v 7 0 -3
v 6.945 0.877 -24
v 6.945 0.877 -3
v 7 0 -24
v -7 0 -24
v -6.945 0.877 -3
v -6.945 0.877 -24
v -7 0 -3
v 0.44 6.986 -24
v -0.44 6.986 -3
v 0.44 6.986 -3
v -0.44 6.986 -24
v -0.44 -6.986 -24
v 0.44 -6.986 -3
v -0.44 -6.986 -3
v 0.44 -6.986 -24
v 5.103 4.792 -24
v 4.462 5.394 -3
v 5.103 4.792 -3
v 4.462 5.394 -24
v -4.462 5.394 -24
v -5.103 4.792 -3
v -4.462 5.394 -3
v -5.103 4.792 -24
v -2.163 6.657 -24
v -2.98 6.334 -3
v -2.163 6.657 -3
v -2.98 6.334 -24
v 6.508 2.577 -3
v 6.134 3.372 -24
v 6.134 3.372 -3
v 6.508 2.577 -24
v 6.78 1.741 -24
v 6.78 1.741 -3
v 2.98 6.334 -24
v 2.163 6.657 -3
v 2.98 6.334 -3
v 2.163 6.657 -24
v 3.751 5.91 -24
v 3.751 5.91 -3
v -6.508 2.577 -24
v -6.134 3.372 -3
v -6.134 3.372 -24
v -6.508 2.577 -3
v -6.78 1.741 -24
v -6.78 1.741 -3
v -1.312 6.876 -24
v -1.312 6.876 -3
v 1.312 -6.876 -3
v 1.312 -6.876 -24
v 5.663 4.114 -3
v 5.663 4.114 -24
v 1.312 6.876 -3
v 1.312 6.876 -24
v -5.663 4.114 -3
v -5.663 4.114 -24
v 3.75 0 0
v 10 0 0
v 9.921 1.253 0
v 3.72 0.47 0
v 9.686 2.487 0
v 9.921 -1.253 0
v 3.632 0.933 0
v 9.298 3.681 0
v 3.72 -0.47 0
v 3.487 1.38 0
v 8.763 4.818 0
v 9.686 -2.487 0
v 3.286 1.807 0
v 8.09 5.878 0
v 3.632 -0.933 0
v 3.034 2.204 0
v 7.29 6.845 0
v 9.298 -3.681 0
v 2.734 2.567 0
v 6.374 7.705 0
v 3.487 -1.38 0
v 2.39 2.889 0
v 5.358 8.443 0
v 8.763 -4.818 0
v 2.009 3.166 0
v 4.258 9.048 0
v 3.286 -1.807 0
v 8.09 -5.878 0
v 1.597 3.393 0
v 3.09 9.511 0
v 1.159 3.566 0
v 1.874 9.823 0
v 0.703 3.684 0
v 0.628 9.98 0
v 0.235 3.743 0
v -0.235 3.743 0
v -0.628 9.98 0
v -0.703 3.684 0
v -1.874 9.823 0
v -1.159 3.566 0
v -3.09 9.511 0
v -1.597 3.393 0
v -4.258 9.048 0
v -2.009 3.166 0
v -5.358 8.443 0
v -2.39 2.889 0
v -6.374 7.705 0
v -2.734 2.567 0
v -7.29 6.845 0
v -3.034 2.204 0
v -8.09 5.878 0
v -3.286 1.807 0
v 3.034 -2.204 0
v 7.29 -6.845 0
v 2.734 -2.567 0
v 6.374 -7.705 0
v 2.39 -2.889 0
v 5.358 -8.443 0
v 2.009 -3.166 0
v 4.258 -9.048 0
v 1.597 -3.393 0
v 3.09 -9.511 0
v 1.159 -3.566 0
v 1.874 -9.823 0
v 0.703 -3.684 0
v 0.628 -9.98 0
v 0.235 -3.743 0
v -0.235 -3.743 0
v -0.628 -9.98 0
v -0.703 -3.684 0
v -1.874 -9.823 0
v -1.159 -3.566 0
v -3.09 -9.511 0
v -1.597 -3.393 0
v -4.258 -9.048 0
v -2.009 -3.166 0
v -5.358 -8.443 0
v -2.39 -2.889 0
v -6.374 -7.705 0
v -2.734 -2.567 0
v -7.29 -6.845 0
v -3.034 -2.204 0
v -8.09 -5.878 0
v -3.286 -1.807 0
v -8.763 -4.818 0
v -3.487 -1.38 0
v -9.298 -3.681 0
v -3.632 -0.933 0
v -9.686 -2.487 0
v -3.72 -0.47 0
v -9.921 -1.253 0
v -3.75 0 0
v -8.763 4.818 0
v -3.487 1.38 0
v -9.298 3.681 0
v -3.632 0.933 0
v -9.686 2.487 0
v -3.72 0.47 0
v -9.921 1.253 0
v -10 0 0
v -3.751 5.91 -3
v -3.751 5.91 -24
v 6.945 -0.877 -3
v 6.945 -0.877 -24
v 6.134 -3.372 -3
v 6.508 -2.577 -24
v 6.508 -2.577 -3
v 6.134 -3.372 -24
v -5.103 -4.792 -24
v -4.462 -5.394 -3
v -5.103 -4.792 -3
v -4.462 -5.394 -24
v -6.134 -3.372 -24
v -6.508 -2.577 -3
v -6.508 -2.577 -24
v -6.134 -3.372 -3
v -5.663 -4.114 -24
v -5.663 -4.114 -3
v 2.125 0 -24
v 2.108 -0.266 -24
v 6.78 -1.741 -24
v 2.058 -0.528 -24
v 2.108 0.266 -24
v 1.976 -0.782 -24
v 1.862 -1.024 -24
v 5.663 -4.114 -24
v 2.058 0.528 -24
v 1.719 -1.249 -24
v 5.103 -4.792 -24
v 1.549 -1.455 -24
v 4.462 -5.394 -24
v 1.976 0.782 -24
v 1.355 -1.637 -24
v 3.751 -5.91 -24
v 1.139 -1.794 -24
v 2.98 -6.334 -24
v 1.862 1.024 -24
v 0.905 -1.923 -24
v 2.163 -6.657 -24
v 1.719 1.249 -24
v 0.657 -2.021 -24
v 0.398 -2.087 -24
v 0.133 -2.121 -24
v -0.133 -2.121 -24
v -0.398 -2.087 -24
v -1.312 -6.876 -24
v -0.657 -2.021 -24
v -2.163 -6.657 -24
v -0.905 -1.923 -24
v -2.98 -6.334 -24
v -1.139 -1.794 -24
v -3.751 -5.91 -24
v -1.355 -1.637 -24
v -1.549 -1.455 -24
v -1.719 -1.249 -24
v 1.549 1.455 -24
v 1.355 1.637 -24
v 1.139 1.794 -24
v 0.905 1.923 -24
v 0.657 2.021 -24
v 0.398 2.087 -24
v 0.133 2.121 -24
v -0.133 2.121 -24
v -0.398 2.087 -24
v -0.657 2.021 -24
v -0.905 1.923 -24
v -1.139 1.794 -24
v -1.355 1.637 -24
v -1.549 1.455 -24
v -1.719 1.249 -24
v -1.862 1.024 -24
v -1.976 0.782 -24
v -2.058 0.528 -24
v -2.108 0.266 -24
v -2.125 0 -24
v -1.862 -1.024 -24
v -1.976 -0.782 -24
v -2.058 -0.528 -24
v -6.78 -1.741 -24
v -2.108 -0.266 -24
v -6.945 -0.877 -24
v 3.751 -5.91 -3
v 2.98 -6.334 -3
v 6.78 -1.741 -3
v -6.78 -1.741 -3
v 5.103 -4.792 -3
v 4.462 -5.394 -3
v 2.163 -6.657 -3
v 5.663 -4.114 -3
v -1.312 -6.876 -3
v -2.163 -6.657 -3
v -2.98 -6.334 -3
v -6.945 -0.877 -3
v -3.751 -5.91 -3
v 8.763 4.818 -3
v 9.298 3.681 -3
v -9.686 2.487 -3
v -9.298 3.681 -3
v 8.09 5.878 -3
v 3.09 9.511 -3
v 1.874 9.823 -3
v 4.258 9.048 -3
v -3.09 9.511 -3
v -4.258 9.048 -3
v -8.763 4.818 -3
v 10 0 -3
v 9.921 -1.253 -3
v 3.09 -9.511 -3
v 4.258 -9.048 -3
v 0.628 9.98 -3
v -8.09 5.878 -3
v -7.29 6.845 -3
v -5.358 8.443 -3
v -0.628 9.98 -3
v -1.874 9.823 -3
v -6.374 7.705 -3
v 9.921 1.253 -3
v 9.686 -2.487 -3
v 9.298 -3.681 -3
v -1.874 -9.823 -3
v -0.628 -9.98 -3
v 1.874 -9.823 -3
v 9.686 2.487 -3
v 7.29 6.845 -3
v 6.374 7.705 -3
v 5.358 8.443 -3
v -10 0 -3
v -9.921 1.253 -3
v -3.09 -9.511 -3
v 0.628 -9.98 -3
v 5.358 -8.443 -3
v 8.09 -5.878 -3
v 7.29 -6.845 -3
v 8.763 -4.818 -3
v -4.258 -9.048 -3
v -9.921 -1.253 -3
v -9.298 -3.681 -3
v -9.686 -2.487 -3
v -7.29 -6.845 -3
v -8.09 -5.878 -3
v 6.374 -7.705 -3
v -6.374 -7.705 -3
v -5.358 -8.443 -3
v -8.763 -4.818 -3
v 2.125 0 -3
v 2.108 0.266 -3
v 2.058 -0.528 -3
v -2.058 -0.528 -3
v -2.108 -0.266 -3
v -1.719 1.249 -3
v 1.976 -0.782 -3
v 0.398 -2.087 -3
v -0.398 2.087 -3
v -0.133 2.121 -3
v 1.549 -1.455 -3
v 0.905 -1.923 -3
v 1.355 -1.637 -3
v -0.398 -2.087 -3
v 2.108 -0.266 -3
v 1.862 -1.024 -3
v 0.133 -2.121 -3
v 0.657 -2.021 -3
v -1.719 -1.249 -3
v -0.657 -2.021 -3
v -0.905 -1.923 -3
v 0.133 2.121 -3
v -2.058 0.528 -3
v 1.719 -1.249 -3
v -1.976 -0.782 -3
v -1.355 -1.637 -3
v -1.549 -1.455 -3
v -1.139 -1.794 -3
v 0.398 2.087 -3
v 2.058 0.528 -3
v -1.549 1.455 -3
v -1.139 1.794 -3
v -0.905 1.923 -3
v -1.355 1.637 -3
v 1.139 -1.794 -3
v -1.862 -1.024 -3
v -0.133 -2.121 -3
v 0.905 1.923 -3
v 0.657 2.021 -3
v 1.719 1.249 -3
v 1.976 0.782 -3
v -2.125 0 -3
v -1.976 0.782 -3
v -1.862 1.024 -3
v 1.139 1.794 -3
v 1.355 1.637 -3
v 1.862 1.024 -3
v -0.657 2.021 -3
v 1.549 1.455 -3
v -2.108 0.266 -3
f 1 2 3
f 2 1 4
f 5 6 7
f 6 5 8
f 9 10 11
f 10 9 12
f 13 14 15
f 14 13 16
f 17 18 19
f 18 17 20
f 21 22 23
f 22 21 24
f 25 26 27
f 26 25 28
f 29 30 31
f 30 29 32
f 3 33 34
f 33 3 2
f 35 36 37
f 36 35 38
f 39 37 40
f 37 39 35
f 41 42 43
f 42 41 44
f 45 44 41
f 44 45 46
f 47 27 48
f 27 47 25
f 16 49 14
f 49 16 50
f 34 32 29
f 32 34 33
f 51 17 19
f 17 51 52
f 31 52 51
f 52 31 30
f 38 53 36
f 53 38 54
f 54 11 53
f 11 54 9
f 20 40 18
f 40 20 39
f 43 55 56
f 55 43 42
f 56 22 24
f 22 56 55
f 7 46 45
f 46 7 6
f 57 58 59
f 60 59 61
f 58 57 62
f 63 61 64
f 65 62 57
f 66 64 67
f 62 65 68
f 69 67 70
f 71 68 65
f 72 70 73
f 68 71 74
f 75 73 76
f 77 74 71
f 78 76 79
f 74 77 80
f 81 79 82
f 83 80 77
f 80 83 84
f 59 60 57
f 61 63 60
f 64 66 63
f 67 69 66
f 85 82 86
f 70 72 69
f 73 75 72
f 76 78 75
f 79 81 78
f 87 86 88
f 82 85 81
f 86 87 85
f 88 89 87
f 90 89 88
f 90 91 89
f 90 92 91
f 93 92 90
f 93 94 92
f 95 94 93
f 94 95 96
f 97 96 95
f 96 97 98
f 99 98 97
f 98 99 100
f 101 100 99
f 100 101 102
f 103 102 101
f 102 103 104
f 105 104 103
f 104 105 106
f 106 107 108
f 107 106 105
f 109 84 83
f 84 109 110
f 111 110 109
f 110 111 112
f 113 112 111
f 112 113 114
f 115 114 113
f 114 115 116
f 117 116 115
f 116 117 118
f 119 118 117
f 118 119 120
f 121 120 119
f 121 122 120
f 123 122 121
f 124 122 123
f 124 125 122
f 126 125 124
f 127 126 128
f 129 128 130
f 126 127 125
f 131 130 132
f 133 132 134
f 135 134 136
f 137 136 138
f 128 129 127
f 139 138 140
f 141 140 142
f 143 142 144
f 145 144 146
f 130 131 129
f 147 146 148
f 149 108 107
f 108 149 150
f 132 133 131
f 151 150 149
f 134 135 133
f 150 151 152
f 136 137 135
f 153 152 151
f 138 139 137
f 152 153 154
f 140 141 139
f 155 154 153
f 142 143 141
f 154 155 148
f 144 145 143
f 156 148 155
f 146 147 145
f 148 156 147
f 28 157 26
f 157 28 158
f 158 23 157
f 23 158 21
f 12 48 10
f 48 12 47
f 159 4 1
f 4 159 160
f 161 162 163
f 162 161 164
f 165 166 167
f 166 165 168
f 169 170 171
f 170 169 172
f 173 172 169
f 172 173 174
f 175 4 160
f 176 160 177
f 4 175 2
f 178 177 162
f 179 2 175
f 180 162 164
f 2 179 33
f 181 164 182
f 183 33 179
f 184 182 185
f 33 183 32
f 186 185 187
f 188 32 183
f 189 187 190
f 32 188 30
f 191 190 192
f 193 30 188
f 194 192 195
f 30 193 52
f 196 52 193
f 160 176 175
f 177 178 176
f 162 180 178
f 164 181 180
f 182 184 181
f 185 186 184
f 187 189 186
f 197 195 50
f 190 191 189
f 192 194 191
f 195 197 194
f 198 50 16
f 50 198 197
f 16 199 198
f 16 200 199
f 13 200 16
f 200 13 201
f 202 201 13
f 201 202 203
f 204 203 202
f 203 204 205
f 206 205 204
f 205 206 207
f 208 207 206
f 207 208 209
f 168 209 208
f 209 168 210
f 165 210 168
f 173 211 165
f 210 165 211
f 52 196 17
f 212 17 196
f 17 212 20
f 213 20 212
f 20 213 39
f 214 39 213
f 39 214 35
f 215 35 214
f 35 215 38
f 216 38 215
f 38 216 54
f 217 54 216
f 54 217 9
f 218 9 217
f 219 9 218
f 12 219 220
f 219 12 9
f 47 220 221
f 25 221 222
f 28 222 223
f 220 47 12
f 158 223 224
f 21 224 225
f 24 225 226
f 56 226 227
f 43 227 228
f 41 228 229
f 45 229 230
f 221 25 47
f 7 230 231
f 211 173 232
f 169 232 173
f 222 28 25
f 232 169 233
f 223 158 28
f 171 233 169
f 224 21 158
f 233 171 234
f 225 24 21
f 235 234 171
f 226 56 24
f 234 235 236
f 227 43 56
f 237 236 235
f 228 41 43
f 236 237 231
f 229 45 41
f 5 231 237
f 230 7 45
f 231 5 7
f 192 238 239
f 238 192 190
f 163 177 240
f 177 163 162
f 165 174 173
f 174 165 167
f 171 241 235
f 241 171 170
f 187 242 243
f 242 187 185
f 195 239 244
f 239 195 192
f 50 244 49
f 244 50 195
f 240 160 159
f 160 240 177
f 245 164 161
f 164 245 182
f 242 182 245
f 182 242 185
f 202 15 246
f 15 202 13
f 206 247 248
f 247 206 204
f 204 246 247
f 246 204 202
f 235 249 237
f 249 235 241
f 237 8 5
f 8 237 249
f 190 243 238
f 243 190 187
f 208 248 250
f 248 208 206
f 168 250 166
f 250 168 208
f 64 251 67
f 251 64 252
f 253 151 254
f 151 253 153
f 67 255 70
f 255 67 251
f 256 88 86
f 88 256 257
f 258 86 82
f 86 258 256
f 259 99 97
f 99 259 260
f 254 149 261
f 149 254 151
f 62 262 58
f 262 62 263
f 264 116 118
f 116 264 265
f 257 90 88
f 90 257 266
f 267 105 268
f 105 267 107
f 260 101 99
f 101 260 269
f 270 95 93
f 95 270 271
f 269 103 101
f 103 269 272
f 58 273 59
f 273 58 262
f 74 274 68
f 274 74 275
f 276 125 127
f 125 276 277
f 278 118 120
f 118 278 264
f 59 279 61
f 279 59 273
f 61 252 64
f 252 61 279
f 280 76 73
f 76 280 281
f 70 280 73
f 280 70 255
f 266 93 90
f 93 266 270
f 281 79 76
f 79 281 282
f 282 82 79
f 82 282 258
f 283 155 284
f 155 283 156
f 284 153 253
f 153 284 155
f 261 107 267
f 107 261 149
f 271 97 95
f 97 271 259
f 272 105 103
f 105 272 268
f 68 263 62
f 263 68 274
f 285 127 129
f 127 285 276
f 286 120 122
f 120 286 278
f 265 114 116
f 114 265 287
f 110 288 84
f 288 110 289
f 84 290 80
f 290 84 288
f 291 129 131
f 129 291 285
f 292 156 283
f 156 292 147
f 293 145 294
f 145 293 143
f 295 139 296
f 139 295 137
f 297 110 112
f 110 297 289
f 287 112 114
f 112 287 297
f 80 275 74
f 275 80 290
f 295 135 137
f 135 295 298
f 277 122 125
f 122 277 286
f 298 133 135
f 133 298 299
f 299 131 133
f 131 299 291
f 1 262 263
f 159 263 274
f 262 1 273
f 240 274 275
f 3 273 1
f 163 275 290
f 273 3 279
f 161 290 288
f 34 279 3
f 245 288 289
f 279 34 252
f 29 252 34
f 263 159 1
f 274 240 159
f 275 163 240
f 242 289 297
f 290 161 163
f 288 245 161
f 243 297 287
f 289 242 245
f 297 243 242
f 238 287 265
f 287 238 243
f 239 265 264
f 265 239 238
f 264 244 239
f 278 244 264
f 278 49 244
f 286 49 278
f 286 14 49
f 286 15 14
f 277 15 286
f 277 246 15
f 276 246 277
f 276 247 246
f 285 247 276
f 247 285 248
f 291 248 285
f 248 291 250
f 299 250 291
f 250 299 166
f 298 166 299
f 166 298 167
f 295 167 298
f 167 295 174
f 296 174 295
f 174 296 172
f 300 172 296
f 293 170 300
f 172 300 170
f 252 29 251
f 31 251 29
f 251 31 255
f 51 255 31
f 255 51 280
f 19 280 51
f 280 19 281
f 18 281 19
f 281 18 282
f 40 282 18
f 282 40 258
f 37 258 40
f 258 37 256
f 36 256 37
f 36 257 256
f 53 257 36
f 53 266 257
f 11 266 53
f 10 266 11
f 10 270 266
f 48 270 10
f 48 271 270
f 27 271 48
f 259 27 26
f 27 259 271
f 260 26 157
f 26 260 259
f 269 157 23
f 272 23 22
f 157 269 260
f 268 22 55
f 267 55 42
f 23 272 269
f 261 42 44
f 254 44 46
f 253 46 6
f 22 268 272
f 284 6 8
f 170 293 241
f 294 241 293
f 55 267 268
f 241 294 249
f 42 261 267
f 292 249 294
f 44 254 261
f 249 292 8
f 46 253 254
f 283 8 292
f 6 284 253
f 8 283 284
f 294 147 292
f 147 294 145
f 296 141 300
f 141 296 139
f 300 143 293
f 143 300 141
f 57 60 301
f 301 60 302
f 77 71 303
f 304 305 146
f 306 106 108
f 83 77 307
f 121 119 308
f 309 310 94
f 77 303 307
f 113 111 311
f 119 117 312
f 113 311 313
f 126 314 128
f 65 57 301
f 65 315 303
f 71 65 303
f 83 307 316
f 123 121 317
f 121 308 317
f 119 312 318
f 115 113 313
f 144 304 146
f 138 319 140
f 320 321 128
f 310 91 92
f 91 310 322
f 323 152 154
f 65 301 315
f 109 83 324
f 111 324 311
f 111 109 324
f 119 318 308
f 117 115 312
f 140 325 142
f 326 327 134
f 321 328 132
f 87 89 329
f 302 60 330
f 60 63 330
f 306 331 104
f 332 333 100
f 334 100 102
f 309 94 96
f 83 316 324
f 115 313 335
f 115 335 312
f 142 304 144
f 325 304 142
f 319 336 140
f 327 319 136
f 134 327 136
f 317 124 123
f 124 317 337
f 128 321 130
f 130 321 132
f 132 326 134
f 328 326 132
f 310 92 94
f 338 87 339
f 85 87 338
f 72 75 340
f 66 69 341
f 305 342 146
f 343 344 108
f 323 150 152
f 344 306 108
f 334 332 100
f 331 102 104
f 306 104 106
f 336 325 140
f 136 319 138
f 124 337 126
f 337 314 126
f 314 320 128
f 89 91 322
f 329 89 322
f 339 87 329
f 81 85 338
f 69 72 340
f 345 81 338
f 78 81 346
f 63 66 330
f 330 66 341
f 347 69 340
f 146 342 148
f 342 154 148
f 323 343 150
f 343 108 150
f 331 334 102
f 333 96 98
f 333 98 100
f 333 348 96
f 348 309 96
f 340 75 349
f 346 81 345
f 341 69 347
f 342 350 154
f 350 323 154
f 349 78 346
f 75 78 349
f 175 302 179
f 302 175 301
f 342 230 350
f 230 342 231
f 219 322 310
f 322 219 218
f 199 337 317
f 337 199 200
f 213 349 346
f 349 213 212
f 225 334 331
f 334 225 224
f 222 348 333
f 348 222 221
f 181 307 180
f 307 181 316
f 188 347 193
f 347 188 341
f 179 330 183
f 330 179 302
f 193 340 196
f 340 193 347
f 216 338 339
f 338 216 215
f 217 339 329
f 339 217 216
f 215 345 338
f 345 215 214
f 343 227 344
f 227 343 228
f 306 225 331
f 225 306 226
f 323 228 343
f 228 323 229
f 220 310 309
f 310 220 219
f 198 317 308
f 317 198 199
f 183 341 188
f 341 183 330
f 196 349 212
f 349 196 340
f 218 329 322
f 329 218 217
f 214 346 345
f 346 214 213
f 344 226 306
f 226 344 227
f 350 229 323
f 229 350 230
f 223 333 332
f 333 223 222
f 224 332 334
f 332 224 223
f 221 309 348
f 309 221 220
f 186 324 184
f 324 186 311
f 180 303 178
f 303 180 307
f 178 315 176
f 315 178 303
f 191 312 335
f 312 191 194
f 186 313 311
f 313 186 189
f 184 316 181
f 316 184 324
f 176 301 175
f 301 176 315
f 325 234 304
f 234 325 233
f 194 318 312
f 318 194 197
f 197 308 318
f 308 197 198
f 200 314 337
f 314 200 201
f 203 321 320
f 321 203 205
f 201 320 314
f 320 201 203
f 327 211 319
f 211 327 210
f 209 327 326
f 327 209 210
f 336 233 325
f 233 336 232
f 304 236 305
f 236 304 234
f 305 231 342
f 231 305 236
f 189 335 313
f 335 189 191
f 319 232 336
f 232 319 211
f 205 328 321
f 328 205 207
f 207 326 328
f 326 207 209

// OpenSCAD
$fn = 50;


difference() {
	union() {
		translate(v = [0, 0, -24.0000000000]) {
			cylinder(h = 24, r = 7.0000000000);
		}
		translate(v = [0, 0, -3.0000000000]) {
			cylinder(h = 3, r = 10.0000000000);
		}
	}
	union() {
		translate(v = [0, 0, 0]) {
			rotate(a = [0, 0, 0]) {
				difference() {
					union() {
						#translate(v = [0, 0, -24.0000000000]) {
							cylinder(h = 24, r = 2.0000000000);
						}
						#translate(v = [0, 0, -3]) {
							cylinder(h = 3, r1 = 2.1250000000, r2 = 3.7500000000);
						}
						#translate(v = [0, 0, -24.0000000000]) {
							cylinder(h = 24, r = 2.1250000000);
						}
						#translate(v = [0, 0, -24.0000000000]) {
							cylinder(h = 24, r = 2.0000000000);
						}
					}
					union();
				}
			}
		}
	}
}
